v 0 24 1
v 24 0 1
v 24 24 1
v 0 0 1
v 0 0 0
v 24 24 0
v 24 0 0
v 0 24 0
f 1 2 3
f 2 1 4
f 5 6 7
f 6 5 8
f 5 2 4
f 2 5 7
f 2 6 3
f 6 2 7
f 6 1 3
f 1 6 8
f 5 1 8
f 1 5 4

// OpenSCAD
/* Warning, this is a very basic generator with a lot of approximation 
input data : [FSTQFP, 3HC, 24x24mm, 302, , A, C04-25027A]
generated by com.zoubworld.electronics.cad.model3d.Basic
Date : Sun Feb 15 10:50:49 CET 2026
*/

//body
color("black")
translate([0,0,0])
cube([24.0,24.0,1.0], center=false);
